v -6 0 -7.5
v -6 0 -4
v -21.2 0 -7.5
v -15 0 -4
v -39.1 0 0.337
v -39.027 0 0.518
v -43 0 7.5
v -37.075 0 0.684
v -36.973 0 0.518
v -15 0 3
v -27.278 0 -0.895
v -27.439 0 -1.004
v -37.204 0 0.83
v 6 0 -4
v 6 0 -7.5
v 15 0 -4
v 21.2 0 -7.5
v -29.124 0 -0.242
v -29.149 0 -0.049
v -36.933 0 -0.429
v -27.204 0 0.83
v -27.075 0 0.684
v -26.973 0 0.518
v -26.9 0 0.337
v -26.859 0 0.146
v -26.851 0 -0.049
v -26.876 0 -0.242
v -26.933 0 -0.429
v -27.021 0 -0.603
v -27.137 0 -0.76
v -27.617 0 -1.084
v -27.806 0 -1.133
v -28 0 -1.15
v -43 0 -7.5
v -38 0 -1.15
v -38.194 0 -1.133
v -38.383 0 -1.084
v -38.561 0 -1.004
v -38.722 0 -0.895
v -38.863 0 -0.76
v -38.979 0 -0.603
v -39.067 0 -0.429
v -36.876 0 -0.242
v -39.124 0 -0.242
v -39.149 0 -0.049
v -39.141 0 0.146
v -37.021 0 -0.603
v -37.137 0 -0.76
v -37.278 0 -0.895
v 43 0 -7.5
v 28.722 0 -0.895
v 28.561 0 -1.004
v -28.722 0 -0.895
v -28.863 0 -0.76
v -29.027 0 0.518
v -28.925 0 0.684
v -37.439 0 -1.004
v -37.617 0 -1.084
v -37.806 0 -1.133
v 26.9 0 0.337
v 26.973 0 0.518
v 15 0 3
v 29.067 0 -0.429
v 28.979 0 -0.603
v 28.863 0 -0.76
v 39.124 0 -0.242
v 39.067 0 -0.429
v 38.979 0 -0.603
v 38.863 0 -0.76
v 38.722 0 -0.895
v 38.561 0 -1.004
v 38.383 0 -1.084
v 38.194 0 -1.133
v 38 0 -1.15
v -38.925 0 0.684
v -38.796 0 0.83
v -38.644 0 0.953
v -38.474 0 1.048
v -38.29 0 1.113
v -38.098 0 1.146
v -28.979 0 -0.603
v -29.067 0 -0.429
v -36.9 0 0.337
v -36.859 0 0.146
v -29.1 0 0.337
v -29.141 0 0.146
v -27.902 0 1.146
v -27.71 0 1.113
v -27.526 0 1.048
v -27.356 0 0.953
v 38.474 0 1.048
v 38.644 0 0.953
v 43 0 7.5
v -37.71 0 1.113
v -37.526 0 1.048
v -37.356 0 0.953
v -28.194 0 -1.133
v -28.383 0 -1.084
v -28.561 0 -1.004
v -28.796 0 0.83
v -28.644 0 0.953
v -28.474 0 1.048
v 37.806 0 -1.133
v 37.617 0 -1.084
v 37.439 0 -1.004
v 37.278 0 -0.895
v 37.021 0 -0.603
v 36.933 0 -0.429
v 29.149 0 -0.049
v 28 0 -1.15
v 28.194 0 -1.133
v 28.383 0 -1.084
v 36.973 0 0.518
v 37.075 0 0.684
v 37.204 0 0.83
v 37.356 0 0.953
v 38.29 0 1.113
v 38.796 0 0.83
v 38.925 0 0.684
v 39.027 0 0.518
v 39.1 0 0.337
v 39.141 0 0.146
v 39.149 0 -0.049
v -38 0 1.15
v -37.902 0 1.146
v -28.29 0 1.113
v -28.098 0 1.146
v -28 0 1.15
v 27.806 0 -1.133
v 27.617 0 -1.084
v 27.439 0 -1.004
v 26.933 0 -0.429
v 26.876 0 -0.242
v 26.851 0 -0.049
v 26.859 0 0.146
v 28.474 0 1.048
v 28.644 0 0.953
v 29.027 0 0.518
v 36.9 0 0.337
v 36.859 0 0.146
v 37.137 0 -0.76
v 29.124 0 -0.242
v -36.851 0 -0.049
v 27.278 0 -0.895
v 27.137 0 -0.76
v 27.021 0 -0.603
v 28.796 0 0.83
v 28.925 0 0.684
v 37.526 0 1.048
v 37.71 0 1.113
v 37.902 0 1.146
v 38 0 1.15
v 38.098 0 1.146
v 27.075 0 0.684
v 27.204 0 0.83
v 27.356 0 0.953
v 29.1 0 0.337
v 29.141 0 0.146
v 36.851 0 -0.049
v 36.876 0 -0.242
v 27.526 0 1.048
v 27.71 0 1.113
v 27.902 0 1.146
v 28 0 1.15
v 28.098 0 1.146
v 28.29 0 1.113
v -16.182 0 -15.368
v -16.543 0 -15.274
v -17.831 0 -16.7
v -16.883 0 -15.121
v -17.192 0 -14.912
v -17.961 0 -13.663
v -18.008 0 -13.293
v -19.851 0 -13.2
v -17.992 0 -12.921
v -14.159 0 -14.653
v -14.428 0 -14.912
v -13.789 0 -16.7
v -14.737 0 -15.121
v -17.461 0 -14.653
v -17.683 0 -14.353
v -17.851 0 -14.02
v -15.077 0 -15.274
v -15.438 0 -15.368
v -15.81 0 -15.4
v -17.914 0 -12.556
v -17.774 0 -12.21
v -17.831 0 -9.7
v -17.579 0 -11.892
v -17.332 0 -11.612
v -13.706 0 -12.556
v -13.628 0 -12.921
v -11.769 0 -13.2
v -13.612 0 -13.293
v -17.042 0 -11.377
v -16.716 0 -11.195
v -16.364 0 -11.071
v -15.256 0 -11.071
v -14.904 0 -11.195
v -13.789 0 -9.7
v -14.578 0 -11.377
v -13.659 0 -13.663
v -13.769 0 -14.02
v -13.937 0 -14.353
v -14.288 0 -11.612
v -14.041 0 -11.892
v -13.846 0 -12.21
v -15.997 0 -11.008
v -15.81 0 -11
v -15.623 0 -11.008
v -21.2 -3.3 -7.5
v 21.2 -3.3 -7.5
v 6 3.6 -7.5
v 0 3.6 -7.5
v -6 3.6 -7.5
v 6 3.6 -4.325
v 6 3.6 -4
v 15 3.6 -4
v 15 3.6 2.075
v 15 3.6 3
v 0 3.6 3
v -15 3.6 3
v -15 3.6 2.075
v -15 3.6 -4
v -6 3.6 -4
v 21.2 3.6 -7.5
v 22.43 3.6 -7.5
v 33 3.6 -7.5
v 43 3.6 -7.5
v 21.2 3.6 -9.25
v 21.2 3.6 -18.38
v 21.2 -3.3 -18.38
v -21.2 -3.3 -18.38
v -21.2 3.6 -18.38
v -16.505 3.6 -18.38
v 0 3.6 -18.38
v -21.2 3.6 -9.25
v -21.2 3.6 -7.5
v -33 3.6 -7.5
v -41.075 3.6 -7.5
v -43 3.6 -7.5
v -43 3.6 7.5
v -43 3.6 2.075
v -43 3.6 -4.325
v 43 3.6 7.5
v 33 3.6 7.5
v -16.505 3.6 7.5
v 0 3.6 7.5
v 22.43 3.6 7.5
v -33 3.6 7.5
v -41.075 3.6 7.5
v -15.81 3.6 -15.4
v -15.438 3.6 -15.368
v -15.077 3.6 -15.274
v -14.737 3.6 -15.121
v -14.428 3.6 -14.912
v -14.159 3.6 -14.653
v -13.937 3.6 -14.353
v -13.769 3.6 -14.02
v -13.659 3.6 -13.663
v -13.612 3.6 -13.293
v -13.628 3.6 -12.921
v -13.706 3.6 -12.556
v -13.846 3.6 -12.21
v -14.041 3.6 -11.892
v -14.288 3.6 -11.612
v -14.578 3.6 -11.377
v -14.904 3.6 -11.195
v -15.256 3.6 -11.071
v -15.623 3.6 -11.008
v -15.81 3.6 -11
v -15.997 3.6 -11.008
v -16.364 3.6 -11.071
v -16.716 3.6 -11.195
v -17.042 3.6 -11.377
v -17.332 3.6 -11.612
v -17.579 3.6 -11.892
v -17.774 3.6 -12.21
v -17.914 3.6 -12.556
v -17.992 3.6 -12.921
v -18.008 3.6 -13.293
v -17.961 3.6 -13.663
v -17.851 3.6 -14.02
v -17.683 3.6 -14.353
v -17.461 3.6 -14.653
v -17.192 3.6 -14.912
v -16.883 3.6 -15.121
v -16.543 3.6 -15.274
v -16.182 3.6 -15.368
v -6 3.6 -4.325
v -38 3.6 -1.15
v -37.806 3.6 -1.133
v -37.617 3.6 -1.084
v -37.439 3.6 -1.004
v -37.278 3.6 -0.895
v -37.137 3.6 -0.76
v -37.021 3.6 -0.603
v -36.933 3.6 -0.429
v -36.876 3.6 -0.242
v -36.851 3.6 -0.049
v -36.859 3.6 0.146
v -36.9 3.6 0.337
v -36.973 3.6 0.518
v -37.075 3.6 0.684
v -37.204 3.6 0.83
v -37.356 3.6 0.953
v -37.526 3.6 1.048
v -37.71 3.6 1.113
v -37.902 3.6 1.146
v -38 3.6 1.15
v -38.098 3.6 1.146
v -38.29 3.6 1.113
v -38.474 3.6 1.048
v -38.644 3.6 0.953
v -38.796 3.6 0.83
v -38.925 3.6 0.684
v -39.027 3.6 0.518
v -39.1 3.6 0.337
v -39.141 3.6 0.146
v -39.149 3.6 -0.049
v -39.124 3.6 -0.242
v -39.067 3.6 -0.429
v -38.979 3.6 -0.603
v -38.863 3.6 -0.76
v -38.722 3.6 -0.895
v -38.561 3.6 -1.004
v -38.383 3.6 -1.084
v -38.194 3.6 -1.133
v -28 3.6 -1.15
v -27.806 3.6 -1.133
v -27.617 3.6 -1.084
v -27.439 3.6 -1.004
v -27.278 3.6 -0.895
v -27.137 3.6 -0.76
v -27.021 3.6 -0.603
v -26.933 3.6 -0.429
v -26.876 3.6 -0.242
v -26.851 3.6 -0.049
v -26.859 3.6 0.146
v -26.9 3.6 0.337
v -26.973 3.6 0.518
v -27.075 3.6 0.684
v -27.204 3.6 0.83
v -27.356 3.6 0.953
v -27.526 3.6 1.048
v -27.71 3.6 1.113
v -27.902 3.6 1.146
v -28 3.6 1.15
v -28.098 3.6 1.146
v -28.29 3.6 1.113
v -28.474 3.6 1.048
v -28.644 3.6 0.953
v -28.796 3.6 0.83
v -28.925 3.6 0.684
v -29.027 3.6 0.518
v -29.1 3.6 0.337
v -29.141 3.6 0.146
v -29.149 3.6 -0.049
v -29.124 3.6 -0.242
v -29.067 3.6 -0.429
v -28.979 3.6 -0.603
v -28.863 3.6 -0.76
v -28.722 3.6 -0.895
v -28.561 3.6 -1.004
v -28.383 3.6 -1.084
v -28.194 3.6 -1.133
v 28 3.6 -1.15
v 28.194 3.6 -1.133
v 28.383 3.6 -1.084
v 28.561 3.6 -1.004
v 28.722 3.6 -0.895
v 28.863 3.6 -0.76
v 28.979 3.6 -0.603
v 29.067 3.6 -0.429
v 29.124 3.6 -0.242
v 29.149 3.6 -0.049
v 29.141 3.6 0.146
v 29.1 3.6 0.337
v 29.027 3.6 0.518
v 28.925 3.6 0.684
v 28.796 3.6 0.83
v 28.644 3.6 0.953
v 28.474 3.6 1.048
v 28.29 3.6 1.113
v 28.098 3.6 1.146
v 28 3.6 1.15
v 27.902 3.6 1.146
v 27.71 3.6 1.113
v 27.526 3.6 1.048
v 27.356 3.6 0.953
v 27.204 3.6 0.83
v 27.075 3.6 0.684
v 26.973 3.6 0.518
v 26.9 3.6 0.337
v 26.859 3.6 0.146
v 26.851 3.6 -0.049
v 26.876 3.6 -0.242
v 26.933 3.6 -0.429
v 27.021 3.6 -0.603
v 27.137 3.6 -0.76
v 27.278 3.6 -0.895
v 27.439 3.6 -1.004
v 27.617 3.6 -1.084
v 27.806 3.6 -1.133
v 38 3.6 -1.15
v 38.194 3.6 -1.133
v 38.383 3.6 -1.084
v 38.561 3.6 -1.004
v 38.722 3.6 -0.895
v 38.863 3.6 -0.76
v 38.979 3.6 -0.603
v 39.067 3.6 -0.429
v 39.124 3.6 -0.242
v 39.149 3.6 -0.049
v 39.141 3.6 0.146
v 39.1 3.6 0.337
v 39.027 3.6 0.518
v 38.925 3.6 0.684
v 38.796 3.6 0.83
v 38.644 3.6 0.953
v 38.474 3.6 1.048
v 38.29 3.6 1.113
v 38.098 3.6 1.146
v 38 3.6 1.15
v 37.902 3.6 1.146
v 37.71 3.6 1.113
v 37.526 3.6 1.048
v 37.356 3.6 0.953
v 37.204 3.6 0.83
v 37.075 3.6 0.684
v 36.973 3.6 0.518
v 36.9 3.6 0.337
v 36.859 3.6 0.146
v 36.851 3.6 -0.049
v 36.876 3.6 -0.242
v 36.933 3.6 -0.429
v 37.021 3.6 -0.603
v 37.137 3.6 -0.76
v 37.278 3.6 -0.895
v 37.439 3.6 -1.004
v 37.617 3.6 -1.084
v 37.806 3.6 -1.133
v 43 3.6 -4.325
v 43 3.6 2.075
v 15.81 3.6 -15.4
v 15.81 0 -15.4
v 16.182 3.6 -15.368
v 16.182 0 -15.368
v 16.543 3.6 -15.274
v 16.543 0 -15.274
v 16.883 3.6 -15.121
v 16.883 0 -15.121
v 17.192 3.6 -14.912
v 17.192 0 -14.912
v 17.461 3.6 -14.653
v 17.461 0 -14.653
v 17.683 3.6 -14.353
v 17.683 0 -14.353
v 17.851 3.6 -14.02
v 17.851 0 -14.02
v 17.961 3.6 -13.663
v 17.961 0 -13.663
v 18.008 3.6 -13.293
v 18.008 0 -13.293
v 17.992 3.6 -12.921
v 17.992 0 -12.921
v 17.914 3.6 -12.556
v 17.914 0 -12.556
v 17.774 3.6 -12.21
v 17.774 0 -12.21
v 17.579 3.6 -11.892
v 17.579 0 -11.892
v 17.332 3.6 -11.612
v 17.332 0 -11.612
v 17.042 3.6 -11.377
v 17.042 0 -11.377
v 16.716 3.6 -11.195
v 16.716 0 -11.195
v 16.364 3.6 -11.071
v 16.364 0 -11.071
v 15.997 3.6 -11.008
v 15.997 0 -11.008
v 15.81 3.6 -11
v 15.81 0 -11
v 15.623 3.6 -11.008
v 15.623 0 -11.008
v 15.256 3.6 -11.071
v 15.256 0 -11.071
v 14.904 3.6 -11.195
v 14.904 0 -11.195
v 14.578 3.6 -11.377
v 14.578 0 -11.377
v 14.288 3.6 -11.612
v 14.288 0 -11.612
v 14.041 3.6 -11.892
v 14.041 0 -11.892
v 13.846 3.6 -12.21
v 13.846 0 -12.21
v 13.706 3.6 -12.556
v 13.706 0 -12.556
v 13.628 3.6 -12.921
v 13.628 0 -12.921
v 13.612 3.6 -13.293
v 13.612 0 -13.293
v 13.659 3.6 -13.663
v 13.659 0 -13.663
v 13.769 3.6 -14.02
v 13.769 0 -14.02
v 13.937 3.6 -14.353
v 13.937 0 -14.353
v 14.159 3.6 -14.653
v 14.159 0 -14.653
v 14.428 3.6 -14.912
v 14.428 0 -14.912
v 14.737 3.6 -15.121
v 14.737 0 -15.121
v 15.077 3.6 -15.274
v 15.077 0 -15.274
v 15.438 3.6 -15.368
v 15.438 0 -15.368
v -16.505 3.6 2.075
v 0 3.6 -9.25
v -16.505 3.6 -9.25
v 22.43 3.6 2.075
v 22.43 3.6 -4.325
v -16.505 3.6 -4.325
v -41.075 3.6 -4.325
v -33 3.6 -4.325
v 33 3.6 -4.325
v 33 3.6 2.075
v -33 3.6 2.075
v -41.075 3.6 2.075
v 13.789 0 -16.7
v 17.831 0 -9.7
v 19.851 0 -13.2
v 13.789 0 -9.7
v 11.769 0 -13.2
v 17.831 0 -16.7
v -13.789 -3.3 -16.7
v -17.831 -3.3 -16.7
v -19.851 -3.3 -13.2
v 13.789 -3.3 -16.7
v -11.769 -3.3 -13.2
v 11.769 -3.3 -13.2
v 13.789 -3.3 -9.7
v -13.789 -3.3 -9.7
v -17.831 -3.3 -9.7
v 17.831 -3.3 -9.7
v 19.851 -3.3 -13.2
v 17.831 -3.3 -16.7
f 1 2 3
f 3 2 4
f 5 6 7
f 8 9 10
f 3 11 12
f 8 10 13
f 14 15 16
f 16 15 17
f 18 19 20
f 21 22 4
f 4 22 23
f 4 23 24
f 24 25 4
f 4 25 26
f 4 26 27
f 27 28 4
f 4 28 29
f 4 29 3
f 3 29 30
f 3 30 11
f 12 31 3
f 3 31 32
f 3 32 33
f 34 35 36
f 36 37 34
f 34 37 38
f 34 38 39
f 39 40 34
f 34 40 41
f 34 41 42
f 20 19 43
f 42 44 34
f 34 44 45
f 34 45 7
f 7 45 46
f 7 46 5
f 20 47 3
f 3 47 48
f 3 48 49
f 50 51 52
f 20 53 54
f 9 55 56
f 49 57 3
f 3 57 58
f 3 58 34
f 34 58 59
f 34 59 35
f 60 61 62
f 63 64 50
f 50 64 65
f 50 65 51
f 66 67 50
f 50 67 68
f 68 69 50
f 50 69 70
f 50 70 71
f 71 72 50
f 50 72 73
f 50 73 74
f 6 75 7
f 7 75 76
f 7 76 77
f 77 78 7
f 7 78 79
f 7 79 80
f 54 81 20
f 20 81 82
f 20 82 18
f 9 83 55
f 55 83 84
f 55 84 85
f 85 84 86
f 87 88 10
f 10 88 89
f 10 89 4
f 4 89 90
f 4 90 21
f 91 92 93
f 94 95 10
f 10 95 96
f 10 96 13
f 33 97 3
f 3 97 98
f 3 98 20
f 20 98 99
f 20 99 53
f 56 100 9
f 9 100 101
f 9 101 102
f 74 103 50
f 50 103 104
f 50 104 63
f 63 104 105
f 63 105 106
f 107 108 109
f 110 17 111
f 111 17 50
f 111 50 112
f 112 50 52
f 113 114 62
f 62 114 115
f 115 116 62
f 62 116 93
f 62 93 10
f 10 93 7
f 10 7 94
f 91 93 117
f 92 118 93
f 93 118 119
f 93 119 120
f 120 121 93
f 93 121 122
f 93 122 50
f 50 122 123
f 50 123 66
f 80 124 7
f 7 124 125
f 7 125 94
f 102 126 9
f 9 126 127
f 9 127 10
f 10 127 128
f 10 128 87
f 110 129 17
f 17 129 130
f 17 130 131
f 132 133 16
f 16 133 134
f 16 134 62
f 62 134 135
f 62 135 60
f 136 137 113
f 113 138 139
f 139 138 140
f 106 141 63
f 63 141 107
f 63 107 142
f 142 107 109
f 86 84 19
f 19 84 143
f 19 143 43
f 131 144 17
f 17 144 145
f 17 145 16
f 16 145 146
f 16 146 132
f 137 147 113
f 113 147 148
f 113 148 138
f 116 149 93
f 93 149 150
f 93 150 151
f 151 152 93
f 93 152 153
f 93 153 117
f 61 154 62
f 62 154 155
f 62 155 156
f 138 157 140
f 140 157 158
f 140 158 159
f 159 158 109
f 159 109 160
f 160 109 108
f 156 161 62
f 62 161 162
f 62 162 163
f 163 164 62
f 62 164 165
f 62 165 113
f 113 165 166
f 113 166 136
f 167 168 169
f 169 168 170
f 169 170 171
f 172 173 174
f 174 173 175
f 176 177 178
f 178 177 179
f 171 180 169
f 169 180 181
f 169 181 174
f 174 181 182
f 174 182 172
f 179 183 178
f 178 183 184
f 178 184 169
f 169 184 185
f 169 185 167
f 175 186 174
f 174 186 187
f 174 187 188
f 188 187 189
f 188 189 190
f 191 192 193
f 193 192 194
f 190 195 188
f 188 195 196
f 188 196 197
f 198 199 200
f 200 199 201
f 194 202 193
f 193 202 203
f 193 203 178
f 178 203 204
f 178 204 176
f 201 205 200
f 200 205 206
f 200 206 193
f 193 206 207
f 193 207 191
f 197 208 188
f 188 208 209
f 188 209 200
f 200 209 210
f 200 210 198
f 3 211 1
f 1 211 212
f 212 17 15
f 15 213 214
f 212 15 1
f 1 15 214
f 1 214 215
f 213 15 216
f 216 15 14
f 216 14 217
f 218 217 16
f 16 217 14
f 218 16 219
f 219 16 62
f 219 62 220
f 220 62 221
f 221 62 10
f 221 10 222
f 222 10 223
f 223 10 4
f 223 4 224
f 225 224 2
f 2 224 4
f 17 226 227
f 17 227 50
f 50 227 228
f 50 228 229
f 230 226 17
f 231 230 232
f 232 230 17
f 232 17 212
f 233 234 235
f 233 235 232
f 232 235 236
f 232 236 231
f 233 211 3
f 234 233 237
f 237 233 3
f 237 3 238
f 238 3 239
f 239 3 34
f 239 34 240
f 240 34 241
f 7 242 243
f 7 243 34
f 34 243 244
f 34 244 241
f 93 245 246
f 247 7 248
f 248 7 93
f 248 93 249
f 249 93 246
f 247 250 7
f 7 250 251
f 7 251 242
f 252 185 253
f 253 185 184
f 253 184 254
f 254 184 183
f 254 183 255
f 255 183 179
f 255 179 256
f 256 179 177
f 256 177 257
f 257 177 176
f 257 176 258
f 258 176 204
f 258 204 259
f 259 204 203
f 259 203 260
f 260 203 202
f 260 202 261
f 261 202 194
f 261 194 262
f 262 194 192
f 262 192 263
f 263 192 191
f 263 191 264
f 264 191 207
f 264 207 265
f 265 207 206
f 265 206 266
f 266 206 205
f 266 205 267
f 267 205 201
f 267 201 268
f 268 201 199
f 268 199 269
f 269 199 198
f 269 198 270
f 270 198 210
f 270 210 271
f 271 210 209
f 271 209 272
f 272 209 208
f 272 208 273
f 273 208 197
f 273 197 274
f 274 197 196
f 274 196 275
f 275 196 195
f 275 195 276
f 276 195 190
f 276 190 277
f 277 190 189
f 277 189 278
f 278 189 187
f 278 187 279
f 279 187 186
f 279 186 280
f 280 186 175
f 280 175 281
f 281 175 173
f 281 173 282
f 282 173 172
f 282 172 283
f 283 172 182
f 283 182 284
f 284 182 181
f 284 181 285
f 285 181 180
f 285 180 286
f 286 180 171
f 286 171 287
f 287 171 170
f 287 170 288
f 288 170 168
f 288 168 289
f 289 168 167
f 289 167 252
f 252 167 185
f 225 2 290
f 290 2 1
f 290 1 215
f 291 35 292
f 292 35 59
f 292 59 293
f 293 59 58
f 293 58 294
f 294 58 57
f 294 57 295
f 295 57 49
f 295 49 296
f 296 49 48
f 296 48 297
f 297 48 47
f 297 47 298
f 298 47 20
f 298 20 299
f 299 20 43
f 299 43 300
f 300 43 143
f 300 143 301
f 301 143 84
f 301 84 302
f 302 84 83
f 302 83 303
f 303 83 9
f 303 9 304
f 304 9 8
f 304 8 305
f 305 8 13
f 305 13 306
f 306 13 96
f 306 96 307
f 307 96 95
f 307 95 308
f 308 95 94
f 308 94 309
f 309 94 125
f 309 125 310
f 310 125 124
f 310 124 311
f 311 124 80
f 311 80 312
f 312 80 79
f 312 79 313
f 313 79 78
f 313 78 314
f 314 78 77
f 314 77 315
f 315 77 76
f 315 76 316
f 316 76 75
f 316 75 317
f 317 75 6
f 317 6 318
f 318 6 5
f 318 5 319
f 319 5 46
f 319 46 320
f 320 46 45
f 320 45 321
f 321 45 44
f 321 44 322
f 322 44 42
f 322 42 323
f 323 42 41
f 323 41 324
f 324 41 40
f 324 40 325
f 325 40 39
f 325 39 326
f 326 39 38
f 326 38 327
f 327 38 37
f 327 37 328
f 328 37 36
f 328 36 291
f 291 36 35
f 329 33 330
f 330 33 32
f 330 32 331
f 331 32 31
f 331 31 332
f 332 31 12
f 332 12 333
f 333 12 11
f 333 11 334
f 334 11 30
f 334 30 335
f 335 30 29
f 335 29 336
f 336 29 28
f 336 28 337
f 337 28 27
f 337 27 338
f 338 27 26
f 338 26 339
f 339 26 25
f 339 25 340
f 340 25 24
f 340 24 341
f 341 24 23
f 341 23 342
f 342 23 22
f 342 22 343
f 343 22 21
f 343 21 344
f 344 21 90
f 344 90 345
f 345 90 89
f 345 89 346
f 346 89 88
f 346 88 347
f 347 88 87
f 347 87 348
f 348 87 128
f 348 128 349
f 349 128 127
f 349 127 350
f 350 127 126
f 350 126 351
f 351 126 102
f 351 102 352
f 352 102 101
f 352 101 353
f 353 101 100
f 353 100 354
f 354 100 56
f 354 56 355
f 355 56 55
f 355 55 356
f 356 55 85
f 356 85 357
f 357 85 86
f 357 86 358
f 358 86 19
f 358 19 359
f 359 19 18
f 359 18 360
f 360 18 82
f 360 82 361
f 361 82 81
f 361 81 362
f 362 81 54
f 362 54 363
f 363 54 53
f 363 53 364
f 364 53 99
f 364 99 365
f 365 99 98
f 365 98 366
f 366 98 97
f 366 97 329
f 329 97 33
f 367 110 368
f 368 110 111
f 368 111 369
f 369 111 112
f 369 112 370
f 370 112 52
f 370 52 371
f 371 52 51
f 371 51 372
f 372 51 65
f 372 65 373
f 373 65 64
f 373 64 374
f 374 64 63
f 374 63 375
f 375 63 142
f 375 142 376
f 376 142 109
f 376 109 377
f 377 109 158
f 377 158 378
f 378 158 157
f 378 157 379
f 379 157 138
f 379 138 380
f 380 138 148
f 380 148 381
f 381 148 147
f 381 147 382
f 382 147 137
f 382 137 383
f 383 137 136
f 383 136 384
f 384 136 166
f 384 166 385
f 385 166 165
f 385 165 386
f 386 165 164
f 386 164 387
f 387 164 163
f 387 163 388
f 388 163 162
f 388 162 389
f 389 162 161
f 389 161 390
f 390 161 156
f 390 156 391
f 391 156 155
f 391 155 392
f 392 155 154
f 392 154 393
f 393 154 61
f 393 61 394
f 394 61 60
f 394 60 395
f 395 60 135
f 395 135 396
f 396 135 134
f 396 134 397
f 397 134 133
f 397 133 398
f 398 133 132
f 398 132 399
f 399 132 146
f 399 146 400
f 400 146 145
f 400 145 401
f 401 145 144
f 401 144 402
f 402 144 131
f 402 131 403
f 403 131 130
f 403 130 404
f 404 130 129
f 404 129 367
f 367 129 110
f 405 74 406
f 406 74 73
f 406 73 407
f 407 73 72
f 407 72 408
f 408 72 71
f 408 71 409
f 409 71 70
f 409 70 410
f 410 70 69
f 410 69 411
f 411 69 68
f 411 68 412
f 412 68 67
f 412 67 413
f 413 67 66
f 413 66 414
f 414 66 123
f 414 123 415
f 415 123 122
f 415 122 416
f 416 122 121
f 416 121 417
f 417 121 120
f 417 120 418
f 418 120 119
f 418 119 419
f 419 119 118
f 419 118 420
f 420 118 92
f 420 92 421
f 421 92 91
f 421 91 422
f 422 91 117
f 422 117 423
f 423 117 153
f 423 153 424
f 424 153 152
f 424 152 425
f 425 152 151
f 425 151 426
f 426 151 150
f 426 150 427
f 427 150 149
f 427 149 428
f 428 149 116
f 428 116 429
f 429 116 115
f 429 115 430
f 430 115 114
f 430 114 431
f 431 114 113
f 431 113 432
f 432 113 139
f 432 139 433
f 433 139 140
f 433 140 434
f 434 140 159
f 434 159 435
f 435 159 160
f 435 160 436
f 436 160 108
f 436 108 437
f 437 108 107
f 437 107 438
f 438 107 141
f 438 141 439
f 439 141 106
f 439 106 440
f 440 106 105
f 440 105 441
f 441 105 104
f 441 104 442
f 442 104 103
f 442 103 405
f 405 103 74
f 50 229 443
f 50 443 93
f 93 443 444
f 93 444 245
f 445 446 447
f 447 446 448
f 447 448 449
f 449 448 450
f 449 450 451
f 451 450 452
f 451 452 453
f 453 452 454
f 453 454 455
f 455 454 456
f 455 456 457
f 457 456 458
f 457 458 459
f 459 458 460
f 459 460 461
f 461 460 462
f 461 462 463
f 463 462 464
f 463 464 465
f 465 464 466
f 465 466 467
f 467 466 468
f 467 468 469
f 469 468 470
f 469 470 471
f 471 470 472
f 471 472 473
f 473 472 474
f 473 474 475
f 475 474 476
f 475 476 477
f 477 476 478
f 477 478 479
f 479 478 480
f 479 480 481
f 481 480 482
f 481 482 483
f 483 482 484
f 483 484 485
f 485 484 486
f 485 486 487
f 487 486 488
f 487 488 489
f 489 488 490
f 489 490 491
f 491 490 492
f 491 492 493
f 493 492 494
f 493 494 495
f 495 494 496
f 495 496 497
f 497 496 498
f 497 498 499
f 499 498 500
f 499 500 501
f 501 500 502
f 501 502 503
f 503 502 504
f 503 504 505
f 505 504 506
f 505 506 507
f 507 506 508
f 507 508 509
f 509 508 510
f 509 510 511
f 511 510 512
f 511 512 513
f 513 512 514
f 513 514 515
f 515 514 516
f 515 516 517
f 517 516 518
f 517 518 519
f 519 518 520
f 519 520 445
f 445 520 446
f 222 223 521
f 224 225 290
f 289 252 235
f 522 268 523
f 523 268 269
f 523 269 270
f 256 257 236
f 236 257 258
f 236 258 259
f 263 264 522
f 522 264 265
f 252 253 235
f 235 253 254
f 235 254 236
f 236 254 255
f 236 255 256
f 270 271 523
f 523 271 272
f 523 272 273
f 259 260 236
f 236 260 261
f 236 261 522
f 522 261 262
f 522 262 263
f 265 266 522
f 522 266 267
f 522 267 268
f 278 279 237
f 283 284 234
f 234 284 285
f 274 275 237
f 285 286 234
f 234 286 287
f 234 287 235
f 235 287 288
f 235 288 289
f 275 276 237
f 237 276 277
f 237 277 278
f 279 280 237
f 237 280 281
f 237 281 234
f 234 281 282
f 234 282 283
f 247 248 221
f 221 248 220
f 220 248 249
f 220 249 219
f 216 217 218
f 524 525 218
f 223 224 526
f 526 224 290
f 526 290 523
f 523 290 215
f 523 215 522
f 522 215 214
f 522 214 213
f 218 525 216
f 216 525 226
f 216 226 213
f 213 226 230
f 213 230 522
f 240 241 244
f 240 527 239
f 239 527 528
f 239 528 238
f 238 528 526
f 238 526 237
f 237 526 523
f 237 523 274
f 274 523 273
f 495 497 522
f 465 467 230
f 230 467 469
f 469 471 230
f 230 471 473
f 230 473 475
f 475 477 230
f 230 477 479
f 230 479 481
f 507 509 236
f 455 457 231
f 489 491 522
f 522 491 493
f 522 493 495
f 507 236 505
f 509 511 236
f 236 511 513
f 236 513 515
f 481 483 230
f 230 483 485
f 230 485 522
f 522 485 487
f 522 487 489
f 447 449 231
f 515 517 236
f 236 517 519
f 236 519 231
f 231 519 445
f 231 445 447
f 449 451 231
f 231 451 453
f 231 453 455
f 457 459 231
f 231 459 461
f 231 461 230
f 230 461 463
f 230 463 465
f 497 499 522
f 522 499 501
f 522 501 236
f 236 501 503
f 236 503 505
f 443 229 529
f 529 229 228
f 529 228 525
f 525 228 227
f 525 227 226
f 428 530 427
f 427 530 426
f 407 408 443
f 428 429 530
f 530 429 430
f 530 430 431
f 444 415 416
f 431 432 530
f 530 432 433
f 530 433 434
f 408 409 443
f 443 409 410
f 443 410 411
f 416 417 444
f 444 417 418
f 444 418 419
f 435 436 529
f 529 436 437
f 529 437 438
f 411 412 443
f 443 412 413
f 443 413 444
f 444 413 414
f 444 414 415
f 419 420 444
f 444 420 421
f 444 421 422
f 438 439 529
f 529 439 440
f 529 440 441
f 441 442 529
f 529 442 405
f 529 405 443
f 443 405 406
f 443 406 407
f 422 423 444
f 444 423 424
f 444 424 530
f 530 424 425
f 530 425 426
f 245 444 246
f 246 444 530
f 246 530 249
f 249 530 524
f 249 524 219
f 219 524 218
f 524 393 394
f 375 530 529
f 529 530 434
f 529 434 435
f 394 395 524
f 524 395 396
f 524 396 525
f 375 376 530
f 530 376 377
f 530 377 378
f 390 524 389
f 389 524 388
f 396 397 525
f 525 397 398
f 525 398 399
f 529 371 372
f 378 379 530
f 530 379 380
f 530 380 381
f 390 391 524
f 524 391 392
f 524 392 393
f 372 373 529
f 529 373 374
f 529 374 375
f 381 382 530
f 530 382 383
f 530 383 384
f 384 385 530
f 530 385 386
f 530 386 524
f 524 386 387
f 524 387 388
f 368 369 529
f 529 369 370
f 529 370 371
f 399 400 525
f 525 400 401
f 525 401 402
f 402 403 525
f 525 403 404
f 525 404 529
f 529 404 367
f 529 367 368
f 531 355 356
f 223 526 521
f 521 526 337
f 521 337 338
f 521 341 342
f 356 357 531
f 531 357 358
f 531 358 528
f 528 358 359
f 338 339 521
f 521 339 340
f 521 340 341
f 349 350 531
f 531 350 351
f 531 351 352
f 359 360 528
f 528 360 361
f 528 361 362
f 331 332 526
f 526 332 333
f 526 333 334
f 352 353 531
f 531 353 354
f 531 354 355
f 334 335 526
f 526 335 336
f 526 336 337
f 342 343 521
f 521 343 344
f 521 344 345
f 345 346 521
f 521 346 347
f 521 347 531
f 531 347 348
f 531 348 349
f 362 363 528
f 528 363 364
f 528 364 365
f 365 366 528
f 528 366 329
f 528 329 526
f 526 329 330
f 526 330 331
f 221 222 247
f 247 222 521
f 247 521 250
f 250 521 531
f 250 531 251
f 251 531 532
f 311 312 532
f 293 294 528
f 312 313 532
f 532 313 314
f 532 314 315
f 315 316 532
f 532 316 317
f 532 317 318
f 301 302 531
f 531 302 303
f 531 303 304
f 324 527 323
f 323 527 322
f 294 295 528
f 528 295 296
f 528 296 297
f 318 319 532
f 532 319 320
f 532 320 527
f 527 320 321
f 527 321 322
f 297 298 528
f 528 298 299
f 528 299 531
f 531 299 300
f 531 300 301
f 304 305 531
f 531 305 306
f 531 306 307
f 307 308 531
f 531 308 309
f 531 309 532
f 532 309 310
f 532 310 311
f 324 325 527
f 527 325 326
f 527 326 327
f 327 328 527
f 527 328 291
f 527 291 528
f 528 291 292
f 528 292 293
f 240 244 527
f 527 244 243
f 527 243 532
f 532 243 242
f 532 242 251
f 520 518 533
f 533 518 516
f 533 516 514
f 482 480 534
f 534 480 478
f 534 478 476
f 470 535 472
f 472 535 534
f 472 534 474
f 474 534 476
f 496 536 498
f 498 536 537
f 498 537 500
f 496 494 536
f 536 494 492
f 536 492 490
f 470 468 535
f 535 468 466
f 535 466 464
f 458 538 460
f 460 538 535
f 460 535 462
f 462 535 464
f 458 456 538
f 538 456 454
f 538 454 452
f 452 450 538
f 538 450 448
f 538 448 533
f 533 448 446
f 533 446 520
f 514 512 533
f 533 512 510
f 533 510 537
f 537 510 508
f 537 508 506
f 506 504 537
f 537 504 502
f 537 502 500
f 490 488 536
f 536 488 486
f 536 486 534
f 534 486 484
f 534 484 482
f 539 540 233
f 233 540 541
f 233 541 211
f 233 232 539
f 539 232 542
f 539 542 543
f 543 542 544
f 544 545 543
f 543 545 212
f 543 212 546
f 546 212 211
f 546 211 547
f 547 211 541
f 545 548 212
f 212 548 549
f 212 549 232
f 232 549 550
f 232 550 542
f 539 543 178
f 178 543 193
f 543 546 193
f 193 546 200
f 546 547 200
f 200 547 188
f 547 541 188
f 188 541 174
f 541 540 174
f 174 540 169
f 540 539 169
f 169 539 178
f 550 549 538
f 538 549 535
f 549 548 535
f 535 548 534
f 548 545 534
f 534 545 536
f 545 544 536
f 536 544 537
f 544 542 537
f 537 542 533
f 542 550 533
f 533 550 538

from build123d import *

# Parameters (mm, degrees)
SKETCH1_R           = 1.15
SKETCH1_R_2         = 2.2
BOSS_EXTRUDE2_DEPTH = 3.6
SKETCH2_W           = 42.4
SKETCH2_H           = 10.88
BOSS_EXTRUDE3_DEPTH = 3.3


with BuildPart() as part:
    # Sketch1 → Boss-Extrude2 (new body)
    with BuildSketch(Plane(origin=(0, 0, 0), x_dir=(1, 0, 0), z_dir=(0, 1, 0))):
        Polygon((33, 7.5), (21.2, 7.5), (21.2, 18.38), (-21.2, 18.38), (-21.2, 7.5), (-33, 7.5), (-43, 7.5), (-43, -7.5), (43, -7.5), (43, 7.5), align=None)
        Polygon((-15, -3), (-15, 4), (-6, 4), (-6, 7.5), (0, 7.5), (6, 7.5), (6, 4), (15, 4), (15, -3), align=None, mode=Mode.SUBTRACT)
        with Locations((-38, 0)):
            Circle(SKETCH1_R, mode=Mode.SUBTRACT)
        with Locations((-28, 0)):
            Circle(SKETCH1_R, mode=Mode.SUBTRACT)
        with Locations((28, 0)):
            Circle(SKETCH1_R, mode=Mode.SUBTRACT)
        with Locations((38, 0)):
            Circle(SKETCH1_R, mode=Mode.SUBTRACT)
        with Locations((-15.81, 13.2)):
            Circle(SKETCH1_R_2, mode=Mode.SUBTRACT)
        with Locations((15.81, 13.2)):
            Circle(SKETCH1_R_2, mode=Mode.SUBTRACT)
    extrude(amount=BOSS_EXTRUDE2_DEPTH)

    # Sketch2 → Boss-Extrude3 (add)
    with BuildSketch(Plane.XZ):
        with Locations((0, -12.94)):
            Rectangle(SKETCH2_W, SKETCH2_H)
        Polygon((-11.768548116, -13.2), (-13.789274058, -9.7), (-17.830725942, -9.7), (-19.851451884, -13.2), (-17.830725942, -16.7), (-13.789274058, -16.7), align=None, mode=Mode.SUBTRACT)
        Polygon((19.851451884, -13.2), (17.830725942, -9.7), (13.789274058, -9.7), (11.768548116, -13.2), (13.789274058, -16.7), (17.830725942, -16.7), align=None, mode=Mode.SUBTRACT)
    extrude(amount=BOSS_EXTRUDE3_DEPTH)


solid = part.part
